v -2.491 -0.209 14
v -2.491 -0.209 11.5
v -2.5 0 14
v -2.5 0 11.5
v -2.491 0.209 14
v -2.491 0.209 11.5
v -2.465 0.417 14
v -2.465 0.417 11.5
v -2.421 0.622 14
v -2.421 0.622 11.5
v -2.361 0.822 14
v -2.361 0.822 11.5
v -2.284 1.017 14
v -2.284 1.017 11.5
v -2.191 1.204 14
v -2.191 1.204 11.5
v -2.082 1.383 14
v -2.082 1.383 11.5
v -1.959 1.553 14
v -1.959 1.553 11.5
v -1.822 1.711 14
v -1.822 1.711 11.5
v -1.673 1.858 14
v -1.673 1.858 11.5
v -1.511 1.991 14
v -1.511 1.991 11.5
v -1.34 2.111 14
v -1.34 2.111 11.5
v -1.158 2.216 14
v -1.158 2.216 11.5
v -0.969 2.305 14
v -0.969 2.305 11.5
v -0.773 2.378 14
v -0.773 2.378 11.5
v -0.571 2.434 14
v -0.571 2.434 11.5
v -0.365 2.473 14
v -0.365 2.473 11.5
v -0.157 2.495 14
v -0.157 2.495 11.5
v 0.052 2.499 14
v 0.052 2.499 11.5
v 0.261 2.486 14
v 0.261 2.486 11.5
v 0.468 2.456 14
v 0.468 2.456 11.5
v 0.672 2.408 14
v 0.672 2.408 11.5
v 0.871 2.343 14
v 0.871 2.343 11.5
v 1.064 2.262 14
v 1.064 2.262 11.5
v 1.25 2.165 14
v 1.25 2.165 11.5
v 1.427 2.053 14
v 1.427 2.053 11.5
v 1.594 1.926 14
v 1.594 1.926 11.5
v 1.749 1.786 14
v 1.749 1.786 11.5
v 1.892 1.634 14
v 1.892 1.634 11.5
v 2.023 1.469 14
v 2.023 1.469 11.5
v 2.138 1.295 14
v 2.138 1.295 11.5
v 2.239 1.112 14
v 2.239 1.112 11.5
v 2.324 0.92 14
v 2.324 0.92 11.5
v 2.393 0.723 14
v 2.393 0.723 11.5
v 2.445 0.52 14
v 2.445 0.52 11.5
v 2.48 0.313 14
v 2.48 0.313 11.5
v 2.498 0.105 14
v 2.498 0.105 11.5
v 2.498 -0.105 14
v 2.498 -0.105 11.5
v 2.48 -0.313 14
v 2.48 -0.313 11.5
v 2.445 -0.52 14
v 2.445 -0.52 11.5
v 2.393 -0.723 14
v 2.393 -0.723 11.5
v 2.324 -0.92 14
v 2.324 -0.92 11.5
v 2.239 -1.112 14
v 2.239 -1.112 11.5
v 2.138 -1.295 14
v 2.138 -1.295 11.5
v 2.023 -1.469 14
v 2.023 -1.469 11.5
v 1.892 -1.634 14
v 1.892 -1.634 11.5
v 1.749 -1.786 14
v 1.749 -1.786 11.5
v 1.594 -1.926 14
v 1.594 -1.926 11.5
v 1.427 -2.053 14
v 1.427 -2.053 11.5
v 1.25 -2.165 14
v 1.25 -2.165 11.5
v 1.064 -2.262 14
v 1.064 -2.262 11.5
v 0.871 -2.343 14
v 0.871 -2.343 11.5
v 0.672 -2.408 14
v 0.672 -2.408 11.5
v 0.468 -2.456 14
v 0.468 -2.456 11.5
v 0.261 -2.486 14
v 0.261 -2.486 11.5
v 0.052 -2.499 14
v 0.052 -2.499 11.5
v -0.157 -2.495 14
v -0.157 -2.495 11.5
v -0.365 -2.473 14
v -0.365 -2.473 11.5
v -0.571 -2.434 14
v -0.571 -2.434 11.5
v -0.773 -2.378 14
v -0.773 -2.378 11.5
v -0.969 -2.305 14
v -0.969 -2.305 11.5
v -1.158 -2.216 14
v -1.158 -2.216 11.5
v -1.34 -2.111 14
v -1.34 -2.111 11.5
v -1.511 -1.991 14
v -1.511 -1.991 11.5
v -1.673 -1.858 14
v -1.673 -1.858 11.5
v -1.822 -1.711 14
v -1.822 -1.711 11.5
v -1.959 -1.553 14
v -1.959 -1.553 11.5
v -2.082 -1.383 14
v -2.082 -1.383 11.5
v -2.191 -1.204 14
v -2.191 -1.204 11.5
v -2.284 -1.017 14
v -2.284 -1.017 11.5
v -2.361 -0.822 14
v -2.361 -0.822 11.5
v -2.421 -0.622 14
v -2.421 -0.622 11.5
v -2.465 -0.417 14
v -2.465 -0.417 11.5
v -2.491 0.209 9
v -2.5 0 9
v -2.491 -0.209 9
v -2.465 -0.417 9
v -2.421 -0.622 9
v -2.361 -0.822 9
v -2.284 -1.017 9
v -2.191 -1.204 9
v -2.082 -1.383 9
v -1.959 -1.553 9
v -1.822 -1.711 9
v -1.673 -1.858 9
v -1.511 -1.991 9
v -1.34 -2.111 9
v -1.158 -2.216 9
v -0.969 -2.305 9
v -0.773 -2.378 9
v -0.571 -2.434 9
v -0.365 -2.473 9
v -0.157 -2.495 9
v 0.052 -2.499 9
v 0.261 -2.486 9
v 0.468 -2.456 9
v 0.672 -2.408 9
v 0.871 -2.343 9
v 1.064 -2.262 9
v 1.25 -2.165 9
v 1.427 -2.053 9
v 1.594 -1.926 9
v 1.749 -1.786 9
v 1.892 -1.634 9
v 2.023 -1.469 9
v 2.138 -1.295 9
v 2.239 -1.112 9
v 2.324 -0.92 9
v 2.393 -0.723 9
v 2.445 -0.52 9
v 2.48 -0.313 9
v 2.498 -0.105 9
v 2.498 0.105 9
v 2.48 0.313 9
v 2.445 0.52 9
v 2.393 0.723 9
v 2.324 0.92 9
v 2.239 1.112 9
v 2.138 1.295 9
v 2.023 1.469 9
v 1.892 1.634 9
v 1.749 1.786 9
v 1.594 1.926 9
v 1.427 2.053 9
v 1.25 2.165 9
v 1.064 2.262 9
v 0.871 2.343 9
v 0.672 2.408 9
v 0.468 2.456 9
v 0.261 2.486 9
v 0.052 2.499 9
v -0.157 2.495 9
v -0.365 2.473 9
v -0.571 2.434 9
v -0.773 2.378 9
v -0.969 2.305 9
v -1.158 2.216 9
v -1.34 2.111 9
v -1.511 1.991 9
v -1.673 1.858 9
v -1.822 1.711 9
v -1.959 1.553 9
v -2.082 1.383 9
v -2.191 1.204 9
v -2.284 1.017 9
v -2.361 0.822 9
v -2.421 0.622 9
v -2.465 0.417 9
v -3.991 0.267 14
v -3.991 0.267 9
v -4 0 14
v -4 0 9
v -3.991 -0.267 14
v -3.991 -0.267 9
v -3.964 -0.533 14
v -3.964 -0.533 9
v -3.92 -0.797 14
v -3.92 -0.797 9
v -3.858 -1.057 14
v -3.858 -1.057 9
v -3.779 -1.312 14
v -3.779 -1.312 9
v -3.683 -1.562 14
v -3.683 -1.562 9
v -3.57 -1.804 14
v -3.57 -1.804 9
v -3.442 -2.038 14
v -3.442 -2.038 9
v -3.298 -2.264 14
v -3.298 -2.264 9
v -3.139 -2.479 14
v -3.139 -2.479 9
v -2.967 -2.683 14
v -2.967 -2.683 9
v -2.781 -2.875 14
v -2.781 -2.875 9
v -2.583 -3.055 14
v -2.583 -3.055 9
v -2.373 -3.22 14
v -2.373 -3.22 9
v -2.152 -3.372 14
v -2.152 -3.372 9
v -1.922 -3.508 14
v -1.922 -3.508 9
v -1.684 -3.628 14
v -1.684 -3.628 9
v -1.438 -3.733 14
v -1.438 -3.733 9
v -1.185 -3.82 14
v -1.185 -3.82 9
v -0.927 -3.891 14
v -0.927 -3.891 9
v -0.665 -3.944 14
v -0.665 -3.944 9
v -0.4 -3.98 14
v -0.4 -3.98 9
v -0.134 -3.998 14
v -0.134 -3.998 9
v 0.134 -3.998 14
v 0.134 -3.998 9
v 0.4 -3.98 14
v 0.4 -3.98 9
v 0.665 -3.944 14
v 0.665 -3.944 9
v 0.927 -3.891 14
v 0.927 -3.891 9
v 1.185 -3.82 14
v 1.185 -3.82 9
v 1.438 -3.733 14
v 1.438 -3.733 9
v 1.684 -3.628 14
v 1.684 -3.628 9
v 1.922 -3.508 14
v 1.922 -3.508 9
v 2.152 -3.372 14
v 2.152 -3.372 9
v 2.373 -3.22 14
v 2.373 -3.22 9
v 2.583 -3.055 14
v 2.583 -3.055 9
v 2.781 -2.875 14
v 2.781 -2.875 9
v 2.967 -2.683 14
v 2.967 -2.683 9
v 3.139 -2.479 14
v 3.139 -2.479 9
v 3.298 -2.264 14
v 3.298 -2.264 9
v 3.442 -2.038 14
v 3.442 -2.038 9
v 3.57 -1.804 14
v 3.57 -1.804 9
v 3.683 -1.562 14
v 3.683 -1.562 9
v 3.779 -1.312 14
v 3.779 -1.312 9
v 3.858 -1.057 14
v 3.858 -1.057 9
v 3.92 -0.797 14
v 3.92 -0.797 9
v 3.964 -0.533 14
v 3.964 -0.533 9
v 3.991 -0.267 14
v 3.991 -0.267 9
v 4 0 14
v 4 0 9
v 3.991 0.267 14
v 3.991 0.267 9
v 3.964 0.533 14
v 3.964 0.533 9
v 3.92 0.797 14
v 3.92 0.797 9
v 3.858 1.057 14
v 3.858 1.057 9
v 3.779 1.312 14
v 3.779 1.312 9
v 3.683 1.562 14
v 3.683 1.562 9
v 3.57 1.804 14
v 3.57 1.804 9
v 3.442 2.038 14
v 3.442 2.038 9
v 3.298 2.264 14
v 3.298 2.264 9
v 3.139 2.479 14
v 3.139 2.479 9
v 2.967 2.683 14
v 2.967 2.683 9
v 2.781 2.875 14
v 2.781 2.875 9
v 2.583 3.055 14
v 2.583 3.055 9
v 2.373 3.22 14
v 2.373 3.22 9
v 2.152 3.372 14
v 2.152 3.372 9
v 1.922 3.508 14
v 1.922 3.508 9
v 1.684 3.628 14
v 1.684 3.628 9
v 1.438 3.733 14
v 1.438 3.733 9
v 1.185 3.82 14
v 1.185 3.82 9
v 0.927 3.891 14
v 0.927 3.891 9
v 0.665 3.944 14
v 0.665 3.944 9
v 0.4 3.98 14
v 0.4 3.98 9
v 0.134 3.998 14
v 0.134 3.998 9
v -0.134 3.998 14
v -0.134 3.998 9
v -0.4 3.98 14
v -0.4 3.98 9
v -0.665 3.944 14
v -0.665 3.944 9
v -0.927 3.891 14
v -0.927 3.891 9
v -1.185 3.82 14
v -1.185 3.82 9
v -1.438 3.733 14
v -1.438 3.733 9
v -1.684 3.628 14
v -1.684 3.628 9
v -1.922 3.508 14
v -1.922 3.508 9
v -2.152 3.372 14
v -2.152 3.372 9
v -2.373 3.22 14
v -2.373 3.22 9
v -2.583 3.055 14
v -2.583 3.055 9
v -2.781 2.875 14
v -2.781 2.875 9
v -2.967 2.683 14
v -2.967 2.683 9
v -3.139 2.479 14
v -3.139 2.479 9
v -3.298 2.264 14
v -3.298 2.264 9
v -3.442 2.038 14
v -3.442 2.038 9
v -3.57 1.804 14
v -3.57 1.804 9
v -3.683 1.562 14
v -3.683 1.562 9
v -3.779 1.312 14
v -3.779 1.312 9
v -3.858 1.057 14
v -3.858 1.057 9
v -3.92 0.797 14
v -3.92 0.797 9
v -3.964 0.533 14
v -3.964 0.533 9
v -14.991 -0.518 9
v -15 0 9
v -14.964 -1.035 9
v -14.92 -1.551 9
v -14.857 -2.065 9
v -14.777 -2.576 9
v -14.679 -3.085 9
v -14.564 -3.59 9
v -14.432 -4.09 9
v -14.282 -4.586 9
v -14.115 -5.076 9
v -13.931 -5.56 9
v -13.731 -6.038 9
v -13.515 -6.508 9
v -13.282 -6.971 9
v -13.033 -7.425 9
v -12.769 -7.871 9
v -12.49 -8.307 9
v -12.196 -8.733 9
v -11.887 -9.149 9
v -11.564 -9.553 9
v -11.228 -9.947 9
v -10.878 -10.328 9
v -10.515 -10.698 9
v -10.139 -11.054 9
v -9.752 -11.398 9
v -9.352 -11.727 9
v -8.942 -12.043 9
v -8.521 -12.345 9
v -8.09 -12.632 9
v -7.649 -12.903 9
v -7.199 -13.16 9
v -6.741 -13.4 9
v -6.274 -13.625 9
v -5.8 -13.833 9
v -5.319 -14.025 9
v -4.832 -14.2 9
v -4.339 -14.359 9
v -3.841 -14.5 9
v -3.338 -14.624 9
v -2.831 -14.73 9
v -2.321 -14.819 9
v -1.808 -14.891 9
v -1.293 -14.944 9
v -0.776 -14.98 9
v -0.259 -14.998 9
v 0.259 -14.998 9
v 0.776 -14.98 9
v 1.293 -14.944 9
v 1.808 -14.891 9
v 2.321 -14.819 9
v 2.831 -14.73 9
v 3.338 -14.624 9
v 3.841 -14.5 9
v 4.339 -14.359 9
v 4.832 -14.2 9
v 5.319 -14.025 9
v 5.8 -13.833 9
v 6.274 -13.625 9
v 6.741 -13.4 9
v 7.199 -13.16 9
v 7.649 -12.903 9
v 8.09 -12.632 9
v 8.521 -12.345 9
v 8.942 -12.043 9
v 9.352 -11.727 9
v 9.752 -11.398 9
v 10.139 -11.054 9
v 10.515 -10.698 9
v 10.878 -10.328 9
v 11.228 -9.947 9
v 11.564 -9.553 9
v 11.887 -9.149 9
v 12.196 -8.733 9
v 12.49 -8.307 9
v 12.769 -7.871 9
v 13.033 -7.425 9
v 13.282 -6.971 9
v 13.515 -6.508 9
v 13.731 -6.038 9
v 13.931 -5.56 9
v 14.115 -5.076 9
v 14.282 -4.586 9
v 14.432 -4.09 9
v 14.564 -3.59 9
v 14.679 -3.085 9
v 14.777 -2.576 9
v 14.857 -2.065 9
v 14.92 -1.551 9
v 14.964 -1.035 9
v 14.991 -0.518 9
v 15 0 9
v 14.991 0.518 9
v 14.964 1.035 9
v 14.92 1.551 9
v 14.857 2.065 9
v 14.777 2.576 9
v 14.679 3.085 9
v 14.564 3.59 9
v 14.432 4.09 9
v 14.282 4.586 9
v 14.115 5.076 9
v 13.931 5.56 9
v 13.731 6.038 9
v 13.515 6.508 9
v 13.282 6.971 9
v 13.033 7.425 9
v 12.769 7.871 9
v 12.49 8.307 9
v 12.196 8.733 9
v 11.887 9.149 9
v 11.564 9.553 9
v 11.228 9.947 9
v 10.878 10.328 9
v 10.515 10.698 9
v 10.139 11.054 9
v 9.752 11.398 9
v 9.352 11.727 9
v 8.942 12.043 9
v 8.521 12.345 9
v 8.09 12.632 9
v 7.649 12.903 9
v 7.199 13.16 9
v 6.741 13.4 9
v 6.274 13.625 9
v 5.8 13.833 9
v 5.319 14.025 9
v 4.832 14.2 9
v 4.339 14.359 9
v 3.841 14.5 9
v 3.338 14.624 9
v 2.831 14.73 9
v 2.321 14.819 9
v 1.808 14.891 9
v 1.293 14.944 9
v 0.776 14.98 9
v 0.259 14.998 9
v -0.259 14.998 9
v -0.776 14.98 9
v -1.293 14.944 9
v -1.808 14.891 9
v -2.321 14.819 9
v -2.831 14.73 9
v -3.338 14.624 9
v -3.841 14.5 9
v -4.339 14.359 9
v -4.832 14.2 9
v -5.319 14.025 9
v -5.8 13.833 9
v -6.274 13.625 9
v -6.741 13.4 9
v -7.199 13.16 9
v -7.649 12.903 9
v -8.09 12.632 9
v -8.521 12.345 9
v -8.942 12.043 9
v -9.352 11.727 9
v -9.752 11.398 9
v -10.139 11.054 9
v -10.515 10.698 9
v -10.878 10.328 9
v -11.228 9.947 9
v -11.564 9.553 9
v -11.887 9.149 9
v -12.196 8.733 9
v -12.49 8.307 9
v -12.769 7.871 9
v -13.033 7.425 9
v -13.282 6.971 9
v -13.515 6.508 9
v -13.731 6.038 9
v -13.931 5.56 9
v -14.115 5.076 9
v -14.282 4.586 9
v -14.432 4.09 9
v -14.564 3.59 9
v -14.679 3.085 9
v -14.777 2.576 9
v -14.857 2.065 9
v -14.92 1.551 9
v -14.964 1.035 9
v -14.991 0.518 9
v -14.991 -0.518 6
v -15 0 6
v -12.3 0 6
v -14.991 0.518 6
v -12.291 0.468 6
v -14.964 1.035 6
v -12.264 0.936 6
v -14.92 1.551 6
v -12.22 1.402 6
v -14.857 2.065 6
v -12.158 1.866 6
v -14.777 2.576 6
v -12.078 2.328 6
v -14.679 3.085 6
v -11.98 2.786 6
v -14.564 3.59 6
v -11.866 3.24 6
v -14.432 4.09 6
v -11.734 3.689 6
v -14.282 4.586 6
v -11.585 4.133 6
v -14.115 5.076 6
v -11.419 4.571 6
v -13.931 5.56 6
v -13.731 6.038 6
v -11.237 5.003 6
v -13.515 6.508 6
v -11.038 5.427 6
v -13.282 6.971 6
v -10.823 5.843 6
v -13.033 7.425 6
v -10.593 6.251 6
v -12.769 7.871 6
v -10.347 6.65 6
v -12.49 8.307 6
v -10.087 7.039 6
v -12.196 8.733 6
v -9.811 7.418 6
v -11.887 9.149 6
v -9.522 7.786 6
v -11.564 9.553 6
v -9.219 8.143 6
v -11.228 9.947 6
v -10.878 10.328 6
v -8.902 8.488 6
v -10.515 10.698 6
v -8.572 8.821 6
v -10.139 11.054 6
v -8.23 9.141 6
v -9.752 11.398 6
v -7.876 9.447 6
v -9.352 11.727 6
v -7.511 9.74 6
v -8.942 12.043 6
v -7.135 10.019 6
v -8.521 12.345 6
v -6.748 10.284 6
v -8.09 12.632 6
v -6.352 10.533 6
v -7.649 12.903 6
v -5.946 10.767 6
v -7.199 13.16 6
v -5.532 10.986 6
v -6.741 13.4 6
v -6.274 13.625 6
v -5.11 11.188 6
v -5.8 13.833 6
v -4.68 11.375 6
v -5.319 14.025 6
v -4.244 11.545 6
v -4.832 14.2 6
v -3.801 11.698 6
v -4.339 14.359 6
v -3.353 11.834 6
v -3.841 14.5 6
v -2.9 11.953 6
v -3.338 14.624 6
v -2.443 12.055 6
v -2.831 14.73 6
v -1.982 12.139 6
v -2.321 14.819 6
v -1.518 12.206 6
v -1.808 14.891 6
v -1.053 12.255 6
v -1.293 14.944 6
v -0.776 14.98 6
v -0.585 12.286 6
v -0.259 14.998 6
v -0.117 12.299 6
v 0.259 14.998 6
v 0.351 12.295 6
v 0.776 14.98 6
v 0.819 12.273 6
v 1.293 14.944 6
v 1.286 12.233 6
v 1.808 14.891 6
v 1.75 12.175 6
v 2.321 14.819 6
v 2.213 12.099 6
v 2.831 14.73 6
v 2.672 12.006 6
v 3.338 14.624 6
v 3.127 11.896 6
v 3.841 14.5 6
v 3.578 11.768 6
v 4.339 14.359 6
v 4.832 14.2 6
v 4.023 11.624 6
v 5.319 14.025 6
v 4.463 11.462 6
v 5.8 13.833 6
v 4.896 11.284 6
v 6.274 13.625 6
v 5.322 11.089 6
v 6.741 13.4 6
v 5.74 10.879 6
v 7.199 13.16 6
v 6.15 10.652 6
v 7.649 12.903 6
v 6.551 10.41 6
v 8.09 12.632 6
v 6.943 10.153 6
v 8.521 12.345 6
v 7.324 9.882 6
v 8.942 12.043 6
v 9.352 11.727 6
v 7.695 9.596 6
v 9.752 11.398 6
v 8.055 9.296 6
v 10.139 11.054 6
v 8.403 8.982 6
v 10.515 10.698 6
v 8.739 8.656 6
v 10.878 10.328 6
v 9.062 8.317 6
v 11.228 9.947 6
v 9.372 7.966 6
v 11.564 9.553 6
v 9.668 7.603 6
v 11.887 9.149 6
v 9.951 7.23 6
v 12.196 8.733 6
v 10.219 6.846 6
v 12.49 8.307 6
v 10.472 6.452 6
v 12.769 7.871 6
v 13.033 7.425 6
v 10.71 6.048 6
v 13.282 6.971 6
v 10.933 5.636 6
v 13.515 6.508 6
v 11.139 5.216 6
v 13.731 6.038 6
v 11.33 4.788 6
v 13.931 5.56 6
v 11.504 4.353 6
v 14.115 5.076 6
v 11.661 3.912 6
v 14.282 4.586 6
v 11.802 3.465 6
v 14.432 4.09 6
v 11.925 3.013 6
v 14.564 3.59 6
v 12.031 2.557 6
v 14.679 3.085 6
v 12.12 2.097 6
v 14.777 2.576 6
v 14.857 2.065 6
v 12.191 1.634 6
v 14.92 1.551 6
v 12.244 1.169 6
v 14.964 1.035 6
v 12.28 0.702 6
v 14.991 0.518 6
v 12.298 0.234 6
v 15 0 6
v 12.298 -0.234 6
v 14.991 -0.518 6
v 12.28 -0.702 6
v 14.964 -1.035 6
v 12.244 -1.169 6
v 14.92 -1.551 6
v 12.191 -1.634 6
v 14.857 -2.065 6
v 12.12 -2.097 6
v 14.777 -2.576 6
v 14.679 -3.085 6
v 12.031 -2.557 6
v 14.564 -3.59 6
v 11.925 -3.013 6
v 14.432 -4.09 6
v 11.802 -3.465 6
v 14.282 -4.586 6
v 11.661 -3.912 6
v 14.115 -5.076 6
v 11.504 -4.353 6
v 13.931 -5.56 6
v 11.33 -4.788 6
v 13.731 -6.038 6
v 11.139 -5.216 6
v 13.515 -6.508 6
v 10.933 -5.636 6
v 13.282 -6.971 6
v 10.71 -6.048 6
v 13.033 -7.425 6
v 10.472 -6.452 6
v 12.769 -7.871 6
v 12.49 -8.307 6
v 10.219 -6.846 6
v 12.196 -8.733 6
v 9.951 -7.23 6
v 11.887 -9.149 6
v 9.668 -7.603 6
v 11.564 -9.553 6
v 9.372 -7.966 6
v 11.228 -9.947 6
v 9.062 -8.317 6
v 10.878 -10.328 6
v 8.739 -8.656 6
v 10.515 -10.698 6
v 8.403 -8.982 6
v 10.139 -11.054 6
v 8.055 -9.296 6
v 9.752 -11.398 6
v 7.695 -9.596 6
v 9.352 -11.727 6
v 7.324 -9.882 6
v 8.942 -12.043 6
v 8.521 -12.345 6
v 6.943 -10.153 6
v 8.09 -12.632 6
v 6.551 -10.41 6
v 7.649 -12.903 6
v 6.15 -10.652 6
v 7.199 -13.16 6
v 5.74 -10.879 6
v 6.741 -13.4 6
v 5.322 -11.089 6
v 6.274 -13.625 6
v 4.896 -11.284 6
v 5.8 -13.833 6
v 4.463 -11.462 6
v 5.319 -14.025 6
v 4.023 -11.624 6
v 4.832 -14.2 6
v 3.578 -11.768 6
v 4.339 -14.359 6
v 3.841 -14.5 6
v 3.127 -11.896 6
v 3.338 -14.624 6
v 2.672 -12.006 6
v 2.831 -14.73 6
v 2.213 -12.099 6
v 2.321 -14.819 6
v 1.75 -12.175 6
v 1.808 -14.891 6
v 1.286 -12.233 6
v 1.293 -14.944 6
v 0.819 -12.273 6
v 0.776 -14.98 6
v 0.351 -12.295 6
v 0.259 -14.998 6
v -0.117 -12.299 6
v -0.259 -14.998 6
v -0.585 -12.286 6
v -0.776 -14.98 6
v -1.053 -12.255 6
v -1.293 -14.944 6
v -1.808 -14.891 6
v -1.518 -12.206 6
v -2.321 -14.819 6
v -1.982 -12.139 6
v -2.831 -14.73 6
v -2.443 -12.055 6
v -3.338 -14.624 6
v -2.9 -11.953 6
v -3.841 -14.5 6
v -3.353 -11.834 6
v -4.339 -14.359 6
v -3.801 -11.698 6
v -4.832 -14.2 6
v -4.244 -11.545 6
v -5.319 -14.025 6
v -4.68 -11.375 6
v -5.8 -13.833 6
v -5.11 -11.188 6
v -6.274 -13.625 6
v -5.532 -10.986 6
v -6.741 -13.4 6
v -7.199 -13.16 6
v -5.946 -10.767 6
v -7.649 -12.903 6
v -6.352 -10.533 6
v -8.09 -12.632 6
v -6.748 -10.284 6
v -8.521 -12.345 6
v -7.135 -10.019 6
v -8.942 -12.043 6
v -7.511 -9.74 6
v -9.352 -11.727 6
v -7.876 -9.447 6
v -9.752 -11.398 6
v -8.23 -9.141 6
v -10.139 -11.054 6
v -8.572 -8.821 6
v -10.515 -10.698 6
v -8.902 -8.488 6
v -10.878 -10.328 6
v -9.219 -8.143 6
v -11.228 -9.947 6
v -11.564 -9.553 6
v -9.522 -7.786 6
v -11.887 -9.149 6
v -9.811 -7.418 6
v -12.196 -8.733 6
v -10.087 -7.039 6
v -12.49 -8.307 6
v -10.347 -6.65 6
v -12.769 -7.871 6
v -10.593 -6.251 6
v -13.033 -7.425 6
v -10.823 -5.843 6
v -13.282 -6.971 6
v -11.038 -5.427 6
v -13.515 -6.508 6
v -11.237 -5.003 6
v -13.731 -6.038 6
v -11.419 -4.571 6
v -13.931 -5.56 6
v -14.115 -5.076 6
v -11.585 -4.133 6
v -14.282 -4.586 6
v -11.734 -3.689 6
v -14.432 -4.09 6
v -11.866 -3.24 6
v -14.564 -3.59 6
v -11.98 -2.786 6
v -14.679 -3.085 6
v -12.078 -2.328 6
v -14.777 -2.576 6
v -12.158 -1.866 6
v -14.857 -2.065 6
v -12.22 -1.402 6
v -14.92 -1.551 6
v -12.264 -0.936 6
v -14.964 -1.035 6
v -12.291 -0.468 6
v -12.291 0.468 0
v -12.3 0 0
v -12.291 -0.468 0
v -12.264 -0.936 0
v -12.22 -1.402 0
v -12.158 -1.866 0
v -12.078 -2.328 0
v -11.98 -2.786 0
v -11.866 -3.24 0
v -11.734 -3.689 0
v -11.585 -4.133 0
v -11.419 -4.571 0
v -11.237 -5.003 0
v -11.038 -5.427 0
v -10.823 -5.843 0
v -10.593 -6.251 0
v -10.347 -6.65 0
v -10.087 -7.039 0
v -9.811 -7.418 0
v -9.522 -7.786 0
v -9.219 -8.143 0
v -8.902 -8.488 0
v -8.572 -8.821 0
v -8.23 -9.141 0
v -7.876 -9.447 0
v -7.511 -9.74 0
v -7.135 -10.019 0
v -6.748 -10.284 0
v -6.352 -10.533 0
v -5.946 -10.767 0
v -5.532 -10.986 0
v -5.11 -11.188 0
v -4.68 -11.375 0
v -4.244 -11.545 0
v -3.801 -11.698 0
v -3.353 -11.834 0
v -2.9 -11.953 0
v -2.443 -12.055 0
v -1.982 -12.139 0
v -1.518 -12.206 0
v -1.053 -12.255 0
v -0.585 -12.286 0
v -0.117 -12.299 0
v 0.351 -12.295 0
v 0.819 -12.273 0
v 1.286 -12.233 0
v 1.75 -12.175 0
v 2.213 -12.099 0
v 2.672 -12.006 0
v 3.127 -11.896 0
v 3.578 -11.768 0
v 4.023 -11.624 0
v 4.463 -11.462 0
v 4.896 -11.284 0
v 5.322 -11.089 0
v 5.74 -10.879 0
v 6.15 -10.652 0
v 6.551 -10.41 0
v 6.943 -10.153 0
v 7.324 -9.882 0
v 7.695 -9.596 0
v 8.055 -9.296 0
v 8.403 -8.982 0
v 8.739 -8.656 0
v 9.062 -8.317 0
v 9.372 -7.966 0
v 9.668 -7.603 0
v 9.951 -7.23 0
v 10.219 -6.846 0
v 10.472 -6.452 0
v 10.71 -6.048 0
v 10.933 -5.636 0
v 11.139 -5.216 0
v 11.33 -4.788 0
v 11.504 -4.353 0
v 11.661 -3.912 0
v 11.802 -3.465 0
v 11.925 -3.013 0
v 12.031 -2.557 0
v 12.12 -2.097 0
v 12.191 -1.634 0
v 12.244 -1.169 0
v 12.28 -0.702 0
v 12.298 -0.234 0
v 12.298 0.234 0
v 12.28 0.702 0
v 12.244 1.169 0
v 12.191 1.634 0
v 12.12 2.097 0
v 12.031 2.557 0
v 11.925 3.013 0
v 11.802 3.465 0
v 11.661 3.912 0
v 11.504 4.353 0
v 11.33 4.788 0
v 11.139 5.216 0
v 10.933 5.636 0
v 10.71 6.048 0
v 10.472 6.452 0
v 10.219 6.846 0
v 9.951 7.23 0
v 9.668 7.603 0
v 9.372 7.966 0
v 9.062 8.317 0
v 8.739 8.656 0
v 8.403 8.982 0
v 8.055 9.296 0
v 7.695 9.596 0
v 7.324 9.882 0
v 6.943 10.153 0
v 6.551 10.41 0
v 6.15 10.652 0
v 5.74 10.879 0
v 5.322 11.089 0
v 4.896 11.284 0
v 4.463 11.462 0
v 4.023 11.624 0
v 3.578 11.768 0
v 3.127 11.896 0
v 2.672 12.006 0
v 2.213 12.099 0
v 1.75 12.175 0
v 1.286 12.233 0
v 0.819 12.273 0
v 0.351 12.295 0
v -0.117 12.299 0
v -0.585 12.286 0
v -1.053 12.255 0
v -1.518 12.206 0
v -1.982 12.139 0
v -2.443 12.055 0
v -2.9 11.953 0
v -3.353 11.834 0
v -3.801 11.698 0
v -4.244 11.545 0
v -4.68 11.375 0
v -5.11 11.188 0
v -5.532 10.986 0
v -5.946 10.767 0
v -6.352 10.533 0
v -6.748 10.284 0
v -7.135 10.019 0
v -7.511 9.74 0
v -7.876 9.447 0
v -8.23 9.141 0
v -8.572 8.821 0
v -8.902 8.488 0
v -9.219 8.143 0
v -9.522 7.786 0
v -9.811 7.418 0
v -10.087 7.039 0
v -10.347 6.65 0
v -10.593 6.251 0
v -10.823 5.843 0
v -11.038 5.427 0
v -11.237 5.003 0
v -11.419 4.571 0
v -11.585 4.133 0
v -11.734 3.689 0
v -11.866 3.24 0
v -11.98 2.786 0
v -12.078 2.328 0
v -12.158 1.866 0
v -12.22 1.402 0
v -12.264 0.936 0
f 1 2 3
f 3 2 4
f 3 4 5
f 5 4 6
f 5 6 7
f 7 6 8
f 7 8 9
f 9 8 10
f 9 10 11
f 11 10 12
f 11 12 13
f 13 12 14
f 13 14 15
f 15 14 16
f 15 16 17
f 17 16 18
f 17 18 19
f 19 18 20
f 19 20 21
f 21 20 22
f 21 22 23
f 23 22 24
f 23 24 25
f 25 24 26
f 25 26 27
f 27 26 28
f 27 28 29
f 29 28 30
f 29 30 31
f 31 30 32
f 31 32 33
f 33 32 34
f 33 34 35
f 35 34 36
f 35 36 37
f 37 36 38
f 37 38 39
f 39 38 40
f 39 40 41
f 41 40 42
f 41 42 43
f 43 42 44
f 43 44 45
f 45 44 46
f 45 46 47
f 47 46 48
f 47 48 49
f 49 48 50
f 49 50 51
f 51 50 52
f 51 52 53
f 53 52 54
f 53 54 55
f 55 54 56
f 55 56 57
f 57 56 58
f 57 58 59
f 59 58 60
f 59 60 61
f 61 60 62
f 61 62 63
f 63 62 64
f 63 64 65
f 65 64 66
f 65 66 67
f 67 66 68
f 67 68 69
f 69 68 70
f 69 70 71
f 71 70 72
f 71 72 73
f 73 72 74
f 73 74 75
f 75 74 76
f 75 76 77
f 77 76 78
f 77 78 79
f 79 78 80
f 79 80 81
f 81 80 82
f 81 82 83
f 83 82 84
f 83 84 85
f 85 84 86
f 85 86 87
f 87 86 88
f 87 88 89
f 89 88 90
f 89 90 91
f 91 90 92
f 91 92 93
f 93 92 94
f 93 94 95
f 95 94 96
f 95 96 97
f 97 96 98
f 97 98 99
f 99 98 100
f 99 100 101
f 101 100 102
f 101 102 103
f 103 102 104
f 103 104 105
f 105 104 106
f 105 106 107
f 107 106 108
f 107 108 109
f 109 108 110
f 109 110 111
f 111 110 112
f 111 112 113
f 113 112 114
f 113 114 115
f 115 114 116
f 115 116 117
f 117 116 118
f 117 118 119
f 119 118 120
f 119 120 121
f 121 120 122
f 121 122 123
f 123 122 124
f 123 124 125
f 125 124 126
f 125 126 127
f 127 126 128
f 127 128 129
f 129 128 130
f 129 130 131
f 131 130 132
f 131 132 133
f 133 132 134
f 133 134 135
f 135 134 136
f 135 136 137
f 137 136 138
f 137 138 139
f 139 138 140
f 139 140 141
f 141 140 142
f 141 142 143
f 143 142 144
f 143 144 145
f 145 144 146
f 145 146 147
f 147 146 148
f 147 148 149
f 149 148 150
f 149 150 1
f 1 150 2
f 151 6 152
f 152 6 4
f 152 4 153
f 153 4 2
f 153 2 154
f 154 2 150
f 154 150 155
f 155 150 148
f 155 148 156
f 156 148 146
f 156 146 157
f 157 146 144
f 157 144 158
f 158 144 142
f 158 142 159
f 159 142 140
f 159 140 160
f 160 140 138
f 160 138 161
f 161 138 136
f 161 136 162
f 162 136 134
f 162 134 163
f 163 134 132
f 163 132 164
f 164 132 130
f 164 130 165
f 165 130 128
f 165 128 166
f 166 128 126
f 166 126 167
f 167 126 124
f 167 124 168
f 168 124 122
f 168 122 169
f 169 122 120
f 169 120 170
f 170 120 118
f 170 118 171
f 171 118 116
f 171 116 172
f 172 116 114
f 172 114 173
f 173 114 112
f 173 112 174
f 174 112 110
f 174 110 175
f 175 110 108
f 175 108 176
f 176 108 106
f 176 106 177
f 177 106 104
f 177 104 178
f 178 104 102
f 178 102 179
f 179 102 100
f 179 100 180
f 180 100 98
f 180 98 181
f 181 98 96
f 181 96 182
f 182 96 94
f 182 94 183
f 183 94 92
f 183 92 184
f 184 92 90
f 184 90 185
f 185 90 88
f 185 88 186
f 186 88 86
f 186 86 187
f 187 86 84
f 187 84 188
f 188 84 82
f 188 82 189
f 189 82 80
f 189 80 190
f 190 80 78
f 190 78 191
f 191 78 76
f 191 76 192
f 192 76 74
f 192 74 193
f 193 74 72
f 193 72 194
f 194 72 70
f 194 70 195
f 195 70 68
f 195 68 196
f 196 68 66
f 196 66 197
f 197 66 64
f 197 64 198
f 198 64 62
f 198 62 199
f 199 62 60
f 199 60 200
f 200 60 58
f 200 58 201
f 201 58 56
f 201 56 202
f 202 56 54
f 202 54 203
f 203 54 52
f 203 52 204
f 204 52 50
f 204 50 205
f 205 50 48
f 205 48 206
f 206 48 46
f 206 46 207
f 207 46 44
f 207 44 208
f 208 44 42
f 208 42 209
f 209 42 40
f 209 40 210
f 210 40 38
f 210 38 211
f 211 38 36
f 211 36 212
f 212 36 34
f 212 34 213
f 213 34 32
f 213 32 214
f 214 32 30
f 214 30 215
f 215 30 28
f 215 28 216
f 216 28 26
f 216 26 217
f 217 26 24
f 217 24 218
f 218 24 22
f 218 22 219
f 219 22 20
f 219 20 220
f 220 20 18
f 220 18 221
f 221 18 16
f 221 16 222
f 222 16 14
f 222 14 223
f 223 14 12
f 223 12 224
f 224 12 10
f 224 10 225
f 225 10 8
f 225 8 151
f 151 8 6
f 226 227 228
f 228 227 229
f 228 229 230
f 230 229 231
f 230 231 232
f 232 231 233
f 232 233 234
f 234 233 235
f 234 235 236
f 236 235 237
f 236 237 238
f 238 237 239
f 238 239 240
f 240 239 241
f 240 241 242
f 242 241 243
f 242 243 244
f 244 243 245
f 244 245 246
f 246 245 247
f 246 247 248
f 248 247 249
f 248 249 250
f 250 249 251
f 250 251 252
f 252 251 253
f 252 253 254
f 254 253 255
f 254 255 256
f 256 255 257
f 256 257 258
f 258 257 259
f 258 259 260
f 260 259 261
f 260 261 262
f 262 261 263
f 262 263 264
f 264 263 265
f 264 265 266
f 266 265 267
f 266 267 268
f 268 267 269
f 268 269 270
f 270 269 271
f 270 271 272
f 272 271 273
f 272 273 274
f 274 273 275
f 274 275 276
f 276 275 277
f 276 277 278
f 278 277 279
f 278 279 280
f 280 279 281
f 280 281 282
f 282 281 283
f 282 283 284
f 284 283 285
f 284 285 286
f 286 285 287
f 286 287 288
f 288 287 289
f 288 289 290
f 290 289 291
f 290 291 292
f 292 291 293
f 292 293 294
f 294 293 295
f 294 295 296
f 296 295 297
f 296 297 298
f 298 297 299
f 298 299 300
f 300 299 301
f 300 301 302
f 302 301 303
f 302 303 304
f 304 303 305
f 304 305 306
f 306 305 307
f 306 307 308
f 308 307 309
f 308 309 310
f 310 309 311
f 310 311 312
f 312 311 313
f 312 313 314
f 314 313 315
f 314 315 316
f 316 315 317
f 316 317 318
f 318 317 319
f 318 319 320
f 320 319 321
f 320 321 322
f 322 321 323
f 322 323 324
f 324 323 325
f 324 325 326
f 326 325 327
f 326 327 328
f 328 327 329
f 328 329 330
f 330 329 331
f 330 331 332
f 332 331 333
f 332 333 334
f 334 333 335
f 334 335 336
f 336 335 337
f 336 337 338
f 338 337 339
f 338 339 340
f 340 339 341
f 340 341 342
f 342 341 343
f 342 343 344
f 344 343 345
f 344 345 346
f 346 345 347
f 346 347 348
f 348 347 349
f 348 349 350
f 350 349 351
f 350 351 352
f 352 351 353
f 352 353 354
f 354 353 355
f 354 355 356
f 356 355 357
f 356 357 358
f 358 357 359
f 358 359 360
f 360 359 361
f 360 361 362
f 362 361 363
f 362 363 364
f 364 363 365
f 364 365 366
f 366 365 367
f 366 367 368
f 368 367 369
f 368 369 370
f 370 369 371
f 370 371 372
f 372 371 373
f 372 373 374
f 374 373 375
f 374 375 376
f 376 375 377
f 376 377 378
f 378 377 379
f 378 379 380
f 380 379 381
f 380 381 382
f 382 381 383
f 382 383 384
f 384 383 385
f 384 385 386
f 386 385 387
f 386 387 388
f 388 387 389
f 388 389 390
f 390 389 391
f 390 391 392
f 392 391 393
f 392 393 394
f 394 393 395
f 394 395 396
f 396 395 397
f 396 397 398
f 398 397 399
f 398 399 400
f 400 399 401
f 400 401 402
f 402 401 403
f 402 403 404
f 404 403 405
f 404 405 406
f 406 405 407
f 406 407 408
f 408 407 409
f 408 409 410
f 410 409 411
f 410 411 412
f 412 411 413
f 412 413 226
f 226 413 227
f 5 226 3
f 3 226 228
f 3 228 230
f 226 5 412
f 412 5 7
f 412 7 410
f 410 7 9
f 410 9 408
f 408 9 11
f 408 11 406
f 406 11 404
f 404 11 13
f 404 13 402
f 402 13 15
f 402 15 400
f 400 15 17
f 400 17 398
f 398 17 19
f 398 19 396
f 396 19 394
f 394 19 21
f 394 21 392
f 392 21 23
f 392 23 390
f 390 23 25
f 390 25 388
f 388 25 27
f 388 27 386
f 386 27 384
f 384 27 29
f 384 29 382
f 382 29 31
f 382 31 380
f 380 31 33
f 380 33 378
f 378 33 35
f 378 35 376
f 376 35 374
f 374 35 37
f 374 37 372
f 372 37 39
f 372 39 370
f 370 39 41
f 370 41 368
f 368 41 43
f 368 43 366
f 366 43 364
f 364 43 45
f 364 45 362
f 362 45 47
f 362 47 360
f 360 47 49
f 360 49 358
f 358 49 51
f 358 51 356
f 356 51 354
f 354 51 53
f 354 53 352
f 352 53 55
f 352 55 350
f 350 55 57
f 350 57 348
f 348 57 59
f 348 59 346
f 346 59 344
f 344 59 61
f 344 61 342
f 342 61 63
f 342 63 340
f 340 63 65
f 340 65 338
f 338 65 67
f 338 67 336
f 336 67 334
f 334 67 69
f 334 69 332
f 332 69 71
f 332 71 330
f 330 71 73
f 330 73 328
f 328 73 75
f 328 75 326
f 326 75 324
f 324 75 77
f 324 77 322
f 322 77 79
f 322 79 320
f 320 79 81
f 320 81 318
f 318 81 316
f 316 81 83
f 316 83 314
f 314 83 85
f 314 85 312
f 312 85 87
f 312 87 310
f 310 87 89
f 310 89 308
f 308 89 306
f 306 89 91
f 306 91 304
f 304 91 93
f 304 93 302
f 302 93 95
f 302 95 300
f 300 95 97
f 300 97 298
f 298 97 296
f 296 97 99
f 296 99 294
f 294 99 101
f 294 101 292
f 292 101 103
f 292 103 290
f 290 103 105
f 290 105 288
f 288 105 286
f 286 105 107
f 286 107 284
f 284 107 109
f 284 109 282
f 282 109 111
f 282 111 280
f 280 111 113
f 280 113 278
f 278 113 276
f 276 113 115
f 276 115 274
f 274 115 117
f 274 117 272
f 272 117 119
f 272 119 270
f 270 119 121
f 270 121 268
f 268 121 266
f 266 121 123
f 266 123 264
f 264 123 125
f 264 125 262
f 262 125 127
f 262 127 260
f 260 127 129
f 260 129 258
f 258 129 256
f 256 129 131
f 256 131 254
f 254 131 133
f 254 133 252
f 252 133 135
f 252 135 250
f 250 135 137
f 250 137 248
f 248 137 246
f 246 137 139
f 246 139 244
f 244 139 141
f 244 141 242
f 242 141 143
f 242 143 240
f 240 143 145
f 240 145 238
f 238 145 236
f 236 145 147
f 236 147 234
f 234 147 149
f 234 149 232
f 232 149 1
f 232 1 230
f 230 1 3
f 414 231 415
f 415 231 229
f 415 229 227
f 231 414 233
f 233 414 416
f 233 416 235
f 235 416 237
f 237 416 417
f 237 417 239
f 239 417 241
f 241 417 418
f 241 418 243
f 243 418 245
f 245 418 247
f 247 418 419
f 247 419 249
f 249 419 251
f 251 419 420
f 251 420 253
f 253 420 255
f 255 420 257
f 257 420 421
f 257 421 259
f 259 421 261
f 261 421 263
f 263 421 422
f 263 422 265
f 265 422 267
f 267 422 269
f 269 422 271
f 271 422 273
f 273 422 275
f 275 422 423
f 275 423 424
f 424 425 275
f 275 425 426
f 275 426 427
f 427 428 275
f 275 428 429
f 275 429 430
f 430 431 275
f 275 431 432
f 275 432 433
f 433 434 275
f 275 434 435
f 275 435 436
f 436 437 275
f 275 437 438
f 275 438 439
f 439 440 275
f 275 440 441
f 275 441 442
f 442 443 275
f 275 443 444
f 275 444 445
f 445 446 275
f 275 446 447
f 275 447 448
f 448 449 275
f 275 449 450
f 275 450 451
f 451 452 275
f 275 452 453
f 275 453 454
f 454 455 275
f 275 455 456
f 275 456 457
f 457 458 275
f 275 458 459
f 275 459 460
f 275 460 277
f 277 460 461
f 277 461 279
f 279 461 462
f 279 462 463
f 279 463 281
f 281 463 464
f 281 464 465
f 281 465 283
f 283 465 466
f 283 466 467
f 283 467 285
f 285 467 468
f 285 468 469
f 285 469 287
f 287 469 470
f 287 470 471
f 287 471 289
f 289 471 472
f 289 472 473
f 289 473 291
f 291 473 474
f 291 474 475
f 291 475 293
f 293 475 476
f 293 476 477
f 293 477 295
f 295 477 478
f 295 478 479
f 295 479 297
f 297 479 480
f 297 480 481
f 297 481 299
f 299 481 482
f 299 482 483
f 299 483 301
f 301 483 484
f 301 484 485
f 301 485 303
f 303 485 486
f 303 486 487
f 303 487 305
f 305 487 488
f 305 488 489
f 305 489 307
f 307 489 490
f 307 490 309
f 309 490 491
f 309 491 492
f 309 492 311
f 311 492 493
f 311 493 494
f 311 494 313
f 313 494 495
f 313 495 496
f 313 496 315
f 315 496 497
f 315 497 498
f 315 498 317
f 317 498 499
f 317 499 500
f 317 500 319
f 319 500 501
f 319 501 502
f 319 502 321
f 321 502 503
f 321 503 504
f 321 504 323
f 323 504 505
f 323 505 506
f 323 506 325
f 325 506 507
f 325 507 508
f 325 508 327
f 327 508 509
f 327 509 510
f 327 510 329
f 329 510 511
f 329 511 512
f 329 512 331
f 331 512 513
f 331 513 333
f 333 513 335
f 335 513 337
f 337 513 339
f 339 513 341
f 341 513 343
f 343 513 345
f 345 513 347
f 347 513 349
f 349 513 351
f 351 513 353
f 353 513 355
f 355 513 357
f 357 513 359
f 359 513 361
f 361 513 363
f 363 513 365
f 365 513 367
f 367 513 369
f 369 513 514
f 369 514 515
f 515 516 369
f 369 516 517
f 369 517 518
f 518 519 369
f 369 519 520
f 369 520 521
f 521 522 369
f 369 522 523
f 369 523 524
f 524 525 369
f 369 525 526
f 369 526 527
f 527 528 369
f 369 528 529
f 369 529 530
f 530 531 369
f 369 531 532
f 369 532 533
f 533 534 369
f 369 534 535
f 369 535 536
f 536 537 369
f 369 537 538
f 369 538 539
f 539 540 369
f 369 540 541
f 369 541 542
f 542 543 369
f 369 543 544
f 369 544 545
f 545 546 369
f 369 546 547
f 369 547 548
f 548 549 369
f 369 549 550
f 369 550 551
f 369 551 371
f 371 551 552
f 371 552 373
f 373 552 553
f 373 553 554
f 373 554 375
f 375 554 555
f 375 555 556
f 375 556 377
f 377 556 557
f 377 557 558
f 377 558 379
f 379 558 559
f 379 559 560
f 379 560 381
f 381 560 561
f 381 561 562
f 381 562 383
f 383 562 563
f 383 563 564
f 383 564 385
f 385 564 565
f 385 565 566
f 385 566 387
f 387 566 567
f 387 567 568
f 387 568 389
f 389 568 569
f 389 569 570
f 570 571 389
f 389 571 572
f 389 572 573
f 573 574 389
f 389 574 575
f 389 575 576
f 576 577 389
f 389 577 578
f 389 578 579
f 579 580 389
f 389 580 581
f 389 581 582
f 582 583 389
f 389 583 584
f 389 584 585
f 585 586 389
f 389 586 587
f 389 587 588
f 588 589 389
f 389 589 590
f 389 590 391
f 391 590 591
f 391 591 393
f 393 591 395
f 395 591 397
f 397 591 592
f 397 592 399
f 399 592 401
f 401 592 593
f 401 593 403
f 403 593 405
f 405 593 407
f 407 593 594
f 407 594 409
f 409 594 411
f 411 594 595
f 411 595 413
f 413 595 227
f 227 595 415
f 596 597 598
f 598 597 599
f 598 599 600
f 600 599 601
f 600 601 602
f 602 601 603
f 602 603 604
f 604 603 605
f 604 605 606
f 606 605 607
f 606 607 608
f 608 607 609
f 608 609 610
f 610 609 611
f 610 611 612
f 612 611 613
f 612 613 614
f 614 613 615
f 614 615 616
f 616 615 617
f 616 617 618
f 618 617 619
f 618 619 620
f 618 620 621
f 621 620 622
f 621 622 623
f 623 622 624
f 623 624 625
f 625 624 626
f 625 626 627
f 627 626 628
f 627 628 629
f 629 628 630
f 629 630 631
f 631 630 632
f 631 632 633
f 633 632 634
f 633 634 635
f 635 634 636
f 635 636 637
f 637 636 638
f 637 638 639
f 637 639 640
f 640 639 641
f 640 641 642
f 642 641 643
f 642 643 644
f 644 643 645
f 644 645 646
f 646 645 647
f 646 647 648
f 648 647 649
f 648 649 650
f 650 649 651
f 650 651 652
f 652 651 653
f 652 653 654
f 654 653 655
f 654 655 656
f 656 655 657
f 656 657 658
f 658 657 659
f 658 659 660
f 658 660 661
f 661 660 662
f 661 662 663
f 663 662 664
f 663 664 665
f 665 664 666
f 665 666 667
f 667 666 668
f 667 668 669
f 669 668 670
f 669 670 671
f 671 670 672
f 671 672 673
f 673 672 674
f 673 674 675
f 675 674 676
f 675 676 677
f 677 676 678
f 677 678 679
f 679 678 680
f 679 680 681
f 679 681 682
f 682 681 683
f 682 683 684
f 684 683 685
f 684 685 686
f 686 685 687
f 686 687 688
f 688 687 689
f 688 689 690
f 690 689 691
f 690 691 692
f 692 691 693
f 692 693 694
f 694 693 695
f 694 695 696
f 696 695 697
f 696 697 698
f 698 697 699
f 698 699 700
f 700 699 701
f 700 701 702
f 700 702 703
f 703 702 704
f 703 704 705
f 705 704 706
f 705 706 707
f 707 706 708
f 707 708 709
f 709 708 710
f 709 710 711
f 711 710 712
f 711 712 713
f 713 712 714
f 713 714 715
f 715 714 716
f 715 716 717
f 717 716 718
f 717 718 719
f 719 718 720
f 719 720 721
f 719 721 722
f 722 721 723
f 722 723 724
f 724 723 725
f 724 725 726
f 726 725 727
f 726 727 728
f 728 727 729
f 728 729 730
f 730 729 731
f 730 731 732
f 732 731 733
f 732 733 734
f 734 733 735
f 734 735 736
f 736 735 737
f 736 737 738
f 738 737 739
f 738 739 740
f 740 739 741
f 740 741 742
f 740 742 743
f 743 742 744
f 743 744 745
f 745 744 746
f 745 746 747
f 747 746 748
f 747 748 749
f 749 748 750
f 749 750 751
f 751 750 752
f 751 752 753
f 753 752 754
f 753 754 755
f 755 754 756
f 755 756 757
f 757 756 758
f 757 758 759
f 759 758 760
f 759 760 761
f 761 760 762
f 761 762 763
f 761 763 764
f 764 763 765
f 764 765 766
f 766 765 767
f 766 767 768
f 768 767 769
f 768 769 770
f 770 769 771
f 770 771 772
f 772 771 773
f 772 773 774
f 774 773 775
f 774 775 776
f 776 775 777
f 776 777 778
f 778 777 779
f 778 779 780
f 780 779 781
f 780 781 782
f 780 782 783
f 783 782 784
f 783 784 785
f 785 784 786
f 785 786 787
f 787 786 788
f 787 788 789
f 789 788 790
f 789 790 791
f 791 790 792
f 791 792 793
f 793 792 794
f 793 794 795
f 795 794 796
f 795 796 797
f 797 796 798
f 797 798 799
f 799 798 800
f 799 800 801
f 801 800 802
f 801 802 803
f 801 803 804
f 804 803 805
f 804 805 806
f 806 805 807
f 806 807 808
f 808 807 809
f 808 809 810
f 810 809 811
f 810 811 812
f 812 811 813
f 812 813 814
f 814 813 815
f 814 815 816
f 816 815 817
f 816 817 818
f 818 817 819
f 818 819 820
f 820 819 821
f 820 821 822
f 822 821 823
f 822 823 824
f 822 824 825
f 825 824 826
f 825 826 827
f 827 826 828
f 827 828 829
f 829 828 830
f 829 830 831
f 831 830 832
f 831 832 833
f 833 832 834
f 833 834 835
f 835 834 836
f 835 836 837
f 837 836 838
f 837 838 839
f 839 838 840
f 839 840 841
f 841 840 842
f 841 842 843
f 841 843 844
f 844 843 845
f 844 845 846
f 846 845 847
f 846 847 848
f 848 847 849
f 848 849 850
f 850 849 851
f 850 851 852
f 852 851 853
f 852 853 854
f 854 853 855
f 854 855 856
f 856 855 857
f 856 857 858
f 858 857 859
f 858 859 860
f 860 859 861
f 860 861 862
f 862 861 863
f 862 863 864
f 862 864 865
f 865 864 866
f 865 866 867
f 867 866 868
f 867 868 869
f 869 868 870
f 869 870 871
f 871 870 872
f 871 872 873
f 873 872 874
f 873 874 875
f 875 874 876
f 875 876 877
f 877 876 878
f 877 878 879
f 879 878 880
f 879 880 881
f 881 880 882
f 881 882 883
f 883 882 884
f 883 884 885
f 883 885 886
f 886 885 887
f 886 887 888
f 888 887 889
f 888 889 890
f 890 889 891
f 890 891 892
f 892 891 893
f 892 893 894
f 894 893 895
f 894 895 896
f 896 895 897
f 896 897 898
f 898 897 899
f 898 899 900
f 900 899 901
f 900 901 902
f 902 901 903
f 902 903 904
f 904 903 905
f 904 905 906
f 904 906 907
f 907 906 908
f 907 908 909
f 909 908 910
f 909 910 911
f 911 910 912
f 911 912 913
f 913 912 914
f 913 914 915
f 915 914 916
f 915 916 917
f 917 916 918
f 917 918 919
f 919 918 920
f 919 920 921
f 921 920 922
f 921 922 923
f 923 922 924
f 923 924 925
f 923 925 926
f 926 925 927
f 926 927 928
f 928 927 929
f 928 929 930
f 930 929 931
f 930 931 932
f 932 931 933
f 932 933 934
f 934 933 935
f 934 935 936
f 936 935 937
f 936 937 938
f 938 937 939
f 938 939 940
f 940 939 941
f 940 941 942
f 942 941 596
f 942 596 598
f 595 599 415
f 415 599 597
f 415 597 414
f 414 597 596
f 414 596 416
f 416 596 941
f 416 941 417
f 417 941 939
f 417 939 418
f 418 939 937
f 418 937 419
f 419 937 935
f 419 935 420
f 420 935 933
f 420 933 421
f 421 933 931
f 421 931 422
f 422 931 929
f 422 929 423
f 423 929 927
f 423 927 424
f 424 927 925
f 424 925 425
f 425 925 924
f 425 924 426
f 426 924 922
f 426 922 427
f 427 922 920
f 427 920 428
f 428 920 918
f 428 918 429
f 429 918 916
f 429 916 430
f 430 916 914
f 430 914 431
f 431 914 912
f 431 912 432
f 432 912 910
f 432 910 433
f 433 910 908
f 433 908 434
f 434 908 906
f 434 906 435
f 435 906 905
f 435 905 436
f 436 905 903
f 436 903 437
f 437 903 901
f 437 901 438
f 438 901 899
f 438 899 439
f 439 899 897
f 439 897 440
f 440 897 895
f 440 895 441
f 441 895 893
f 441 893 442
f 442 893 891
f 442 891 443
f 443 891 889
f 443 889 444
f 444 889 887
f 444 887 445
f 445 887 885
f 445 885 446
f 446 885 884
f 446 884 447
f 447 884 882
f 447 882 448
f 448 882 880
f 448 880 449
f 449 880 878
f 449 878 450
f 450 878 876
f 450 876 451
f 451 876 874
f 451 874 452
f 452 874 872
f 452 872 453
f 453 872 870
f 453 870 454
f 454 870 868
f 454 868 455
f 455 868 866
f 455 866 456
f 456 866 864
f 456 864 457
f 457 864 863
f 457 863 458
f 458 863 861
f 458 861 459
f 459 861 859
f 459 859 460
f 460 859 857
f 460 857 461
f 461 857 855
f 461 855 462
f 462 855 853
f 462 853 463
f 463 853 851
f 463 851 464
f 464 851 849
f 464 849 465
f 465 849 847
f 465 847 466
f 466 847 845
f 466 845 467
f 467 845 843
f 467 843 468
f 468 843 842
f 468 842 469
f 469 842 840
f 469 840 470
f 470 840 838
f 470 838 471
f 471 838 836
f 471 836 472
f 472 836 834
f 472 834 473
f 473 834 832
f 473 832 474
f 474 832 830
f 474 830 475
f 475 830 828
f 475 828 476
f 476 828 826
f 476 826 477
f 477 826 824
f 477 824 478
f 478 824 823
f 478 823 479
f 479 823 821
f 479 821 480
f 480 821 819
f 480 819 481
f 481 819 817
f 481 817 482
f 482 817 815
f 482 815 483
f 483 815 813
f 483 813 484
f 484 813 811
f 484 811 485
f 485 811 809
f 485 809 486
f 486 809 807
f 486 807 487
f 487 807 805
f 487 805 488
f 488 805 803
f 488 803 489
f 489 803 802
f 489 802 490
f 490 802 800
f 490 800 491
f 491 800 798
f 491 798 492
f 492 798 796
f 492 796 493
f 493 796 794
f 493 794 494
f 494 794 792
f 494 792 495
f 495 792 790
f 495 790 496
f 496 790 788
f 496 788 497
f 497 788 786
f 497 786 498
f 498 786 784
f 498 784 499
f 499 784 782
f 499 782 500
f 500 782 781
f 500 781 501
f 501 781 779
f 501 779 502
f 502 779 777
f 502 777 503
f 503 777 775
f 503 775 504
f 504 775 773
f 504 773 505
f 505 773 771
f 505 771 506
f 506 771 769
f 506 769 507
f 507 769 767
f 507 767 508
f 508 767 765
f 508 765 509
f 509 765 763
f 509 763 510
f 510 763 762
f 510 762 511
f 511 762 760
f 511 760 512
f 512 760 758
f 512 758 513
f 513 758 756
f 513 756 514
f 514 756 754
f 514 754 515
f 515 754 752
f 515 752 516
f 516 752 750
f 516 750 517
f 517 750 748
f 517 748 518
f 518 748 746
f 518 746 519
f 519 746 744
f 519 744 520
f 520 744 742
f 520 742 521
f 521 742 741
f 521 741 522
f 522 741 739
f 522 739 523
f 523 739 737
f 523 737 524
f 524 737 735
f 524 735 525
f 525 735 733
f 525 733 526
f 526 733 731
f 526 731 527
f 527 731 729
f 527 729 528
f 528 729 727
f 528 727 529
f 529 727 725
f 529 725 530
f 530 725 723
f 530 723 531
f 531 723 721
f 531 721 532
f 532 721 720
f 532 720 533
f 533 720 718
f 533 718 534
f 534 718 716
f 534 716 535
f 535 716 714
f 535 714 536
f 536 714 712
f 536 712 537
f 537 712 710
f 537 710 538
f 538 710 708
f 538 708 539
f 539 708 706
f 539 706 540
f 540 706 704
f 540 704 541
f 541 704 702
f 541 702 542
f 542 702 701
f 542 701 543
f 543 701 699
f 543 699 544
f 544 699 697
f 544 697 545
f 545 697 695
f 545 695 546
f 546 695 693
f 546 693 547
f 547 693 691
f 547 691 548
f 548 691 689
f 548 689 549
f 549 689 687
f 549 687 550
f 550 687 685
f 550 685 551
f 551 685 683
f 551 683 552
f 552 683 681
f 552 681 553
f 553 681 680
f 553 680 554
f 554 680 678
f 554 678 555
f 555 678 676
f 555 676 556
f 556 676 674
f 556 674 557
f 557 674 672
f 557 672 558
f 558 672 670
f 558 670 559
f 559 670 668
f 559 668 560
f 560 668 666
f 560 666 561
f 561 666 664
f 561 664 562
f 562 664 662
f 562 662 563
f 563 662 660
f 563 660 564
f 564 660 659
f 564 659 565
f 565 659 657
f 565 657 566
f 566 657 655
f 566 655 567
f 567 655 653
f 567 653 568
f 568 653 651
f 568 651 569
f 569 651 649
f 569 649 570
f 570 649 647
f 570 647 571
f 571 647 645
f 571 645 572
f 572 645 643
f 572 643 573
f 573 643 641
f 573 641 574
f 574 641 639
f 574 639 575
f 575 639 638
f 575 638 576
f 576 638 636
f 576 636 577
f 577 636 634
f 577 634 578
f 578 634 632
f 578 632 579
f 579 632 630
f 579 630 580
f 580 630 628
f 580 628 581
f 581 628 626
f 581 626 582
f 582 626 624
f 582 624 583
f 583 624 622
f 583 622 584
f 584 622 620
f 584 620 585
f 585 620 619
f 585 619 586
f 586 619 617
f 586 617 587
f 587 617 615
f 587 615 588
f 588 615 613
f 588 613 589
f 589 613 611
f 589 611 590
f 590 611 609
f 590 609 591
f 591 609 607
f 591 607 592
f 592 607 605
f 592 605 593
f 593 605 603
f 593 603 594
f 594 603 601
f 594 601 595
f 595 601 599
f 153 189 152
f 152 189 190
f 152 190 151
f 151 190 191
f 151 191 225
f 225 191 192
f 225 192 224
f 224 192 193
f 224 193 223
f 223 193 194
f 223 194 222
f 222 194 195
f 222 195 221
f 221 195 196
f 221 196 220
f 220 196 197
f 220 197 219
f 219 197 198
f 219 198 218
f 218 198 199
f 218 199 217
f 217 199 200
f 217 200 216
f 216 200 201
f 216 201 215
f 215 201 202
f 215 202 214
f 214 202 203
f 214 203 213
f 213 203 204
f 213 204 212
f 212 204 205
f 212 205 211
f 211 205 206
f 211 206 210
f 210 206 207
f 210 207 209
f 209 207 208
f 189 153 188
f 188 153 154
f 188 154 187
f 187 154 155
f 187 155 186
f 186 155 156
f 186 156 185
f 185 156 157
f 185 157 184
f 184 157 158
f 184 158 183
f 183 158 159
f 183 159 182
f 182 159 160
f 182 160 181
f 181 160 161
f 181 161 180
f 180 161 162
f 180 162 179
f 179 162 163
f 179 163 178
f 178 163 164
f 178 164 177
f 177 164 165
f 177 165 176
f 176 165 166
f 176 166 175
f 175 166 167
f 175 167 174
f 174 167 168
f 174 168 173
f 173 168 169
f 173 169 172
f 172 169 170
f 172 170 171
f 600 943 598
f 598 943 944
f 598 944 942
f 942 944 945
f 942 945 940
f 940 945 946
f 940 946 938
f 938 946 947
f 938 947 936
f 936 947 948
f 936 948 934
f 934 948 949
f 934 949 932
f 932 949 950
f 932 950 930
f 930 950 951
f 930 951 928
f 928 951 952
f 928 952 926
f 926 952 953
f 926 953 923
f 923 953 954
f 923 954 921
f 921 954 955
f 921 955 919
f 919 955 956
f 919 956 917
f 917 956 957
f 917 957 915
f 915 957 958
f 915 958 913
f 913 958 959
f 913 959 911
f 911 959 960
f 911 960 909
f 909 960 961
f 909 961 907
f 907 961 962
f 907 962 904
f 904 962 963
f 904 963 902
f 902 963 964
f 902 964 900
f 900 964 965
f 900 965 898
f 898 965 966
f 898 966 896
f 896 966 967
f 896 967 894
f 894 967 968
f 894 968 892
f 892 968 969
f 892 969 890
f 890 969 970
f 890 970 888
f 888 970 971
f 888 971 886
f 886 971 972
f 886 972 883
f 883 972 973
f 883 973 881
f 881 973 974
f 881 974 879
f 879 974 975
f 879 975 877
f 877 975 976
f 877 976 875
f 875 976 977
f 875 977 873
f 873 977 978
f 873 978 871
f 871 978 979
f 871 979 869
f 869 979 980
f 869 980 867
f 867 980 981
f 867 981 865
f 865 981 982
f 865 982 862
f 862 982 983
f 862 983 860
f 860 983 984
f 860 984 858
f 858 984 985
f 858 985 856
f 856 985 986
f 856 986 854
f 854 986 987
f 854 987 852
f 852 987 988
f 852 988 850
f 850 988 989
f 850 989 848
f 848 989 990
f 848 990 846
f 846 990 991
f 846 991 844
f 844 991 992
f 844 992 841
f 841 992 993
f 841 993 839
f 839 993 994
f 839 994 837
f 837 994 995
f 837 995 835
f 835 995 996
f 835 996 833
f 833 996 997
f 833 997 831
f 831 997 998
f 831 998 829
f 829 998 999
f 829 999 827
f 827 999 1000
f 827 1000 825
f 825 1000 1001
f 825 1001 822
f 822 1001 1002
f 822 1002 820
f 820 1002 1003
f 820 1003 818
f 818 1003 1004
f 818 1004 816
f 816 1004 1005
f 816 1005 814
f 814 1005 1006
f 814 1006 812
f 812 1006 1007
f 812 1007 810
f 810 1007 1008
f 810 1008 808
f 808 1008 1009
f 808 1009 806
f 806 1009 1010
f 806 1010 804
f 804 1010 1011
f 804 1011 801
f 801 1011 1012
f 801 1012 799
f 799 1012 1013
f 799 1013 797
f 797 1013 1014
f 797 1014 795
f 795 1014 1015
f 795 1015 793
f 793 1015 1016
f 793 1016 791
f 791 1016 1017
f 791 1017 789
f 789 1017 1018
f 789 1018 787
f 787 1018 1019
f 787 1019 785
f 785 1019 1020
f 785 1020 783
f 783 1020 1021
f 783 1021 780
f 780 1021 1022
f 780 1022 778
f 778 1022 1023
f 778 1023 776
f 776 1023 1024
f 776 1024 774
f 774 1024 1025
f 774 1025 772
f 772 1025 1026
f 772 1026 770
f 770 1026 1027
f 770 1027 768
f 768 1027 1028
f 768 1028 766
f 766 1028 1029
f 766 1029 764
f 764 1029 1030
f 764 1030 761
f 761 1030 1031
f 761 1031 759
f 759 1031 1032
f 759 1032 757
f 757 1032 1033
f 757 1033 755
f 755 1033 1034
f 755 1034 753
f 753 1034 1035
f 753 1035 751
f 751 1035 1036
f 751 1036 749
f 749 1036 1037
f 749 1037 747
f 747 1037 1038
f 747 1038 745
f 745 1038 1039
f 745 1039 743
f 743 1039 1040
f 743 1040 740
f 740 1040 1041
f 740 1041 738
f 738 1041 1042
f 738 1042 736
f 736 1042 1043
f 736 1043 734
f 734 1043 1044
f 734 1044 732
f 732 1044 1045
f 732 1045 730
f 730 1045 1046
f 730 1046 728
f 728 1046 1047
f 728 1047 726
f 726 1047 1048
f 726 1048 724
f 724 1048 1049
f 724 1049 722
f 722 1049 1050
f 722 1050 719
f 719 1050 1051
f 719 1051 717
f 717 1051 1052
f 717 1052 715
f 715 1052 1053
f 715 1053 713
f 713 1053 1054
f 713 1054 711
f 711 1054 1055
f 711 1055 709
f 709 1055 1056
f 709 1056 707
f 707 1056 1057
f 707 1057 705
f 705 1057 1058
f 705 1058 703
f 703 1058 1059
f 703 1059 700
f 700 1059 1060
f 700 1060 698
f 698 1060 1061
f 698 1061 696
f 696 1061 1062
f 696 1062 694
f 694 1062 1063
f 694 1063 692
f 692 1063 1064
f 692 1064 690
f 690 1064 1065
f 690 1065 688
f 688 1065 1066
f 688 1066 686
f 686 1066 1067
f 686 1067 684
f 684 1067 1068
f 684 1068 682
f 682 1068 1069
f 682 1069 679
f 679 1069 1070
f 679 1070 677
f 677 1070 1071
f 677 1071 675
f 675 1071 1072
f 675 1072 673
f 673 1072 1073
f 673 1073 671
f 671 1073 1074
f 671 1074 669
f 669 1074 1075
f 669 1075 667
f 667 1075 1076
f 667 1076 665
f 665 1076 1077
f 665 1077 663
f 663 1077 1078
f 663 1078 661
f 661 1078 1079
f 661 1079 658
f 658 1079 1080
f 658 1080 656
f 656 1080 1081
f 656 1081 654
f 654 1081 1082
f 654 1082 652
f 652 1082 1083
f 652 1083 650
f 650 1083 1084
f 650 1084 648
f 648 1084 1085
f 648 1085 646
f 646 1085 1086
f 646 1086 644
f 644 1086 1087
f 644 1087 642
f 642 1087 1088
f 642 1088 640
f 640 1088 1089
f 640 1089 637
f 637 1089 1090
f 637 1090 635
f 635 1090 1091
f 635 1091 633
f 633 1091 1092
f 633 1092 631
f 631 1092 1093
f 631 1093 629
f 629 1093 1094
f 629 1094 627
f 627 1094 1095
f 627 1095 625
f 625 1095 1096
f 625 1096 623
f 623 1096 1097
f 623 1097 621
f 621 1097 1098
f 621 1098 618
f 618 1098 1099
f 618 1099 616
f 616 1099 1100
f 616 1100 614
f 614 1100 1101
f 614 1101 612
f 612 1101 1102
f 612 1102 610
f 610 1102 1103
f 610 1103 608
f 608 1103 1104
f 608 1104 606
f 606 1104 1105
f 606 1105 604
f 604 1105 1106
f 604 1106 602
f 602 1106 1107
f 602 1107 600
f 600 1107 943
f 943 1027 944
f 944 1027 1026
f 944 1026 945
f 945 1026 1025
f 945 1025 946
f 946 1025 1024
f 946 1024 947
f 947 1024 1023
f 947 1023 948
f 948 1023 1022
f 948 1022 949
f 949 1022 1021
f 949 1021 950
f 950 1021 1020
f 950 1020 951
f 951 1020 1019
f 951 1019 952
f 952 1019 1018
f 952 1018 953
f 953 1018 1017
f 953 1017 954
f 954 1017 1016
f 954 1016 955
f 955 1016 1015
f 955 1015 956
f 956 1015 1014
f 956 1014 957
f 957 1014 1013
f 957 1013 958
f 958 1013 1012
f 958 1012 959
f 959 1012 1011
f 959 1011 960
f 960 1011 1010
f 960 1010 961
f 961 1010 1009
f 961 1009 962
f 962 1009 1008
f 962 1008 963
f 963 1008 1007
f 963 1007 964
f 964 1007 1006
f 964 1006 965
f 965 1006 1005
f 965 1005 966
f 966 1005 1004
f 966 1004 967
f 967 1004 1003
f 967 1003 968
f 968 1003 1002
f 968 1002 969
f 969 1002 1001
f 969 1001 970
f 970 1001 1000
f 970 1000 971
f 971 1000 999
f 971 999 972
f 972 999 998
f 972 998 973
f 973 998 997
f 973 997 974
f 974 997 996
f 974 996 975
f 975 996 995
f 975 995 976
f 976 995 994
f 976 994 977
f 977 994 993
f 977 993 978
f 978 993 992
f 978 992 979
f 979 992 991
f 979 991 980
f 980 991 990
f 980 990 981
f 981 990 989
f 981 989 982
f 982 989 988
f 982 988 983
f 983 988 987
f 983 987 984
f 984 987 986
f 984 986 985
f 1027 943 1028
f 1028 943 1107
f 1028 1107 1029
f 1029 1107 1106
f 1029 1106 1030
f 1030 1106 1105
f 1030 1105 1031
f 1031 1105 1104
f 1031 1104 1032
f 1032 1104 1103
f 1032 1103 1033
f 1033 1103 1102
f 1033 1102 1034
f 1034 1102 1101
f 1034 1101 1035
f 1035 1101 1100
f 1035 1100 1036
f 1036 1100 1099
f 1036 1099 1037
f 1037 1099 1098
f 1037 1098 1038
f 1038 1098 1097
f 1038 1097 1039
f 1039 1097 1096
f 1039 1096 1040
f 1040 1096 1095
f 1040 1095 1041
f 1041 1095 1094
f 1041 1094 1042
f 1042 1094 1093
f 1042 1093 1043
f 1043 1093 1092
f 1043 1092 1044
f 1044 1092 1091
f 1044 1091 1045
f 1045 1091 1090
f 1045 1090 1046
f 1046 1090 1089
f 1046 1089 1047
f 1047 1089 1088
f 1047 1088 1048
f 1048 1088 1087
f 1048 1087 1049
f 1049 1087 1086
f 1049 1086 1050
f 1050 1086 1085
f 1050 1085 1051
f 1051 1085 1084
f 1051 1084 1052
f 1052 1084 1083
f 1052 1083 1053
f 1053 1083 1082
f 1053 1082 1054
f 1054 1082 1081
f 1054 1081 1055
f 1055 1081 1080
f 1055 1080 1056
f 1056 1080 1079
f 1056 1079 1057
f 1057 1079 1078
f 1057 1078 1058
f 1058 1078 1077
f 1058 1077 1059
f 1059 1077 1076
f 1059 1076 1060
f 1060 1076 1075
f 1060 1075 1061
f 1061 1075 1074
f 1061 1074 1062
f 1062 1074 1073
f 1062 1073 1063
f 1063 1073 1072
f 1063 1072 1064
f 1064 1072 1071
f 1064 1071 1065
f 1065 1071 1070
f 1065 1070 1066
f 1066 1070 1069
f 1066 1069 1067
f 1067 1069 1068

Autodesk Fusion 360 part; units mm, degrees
sketch "Sketch1" plane through (0, 0, 0) normal (0, 0, 1) x (1, 0, 0)
  circle A0 centre (0, 0) radius 12.3
  circle A1 centre (0, 0) radius 2.5
  circle A2 centre (0, 0) radius 4
  circle A3 centre (0, 0) radius 15
  dimension "d1" = 24.6
  dimension "led_diam" = 5
  dimension "d3" = 8
  dimension "d4" = 30
extrude "Extrude1" add sketch "Sketch1" along normal blind 6 contours A0 | A1 | A2
extrude "Extrude2" add sketch "Sketch1" along normal blind 3 from surface at 6 contours A0 | A1 | A2 | A3
extrude "Extrude4" add sketch "Sketch1" along normal blind 5 from surface at 9 contours A2
equation "d3 = led_diam + 3 mm"
equation "diffuser_thick = 6 mm"
equation "light_offset = diffuser_thick"
equation "support_thick = 3 mm"
equation "d13 = diffuser_thick + support_thick"
